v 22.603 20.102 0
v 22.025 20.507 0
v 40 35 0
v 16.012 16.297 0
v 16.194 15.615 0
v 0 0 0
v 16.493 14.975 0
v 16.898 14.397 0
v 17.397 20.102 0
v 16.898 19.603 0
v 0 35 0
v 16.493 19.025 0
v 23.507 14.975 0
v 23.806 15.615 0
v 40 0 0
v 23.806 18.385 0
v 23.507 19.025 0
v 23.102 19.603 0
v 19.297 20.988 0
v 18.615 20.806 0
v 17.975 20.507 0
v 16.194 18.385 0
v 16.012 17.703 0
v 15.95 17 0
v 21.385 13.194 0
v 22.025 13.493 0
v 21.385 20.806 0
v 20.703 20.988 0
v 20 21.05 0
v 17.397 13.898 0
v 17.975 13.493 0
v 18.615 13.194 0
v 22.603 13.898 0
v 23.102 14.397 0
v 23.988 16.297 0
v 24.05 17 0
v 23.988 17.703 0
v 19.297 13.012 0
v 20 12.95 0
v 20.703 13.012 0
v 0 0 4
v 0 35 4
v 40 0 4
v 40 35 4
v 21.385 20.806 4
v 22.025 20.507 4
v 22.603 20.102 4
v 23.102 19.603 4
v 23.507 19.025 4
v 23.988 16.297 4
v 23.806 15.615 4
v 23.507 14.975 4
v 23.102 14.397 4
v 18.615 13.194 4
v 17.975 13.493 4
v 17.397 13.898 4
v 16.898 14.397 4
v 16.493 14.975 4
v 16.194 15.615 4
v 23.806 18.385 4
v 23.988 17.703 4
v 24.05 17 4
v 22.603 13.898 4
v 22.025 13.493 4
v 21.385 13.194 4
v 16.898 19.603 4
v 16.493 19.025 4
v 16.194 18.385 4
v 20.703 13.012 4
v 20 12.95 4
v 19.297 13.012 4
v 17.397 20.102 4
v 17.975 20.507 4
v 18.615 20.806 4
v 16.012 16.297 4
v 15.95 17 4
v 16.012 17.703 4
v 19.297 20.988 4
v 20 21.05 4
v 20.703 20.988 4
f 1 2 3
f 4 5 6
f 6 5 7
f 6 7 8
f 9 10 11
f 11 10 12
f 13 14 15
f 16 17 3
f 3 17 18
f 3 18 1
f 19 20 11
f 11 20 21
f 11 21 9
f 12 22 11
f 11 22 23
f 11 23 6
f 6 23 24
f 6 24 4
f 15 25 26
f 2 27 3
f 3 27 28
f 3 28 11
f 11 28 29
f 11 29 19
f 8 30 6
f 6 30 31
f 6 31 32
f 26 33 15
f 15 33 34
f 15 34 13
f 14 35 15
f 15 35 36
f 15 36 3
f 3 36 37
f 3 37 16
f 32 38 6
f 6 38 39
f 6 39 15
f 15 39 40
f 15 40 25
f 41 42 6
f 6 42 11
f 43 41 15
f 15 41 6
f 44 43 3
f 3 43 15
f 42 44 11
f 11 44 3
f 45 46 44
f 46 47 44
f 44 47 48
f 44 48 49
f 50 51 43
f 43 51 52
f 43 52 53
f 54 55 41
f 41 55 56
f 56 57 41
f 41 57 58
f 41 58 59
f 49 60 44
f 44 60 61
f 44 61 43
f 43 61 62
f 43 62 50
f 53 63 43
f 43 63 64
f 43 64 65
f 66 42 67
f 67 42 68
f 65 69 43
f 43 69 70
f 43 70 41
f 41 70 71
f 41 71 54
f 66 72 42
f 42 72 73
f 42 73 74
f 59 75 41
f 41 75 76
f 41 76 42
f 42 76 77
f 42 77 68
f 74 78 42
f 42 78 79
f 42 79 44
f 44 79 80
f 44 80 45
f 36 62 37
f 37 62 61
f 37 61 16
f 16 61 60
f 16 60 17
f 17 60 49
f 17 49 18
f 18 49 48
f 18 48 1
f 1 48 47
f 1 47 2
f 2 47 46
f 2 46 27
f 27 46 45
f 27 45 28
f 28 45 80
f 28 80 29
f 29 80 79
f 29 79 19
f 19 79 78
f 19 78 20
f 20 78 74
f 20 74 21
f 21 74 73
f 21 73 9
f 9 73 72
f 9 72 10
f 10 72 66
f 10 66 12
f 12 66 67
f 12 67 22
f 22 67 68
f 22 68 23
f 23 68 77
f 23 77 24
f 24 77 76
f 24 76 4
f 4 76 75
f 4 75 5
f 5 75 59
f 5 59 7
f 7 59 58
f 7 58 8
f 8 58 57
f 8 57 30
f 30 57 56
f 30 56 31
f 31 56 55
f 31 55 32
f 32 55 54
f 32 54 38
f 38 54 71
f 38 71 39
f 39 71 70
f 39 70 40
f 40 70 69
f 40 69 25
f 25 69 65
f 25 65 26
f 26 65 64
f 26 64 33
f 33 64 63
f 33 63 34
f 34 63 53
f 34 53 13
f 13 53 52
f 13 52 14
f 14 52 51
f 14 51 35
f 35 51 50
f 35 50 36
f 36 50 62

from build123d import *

# Parameters (mm, degrees)
SKETCH1_W                     = 40
SKETCH1_H                     = 35
PROFILE_DEPTH                 = 4
FASTENER_CLEARANCE_DEPTH      = 54.301031885
FASTENER_CLEARANCE_DEPTH_BACK = 54.301031885
SKETCH2_R                     = 4.05


with BuildPart() as part:
    # Sketch1 → Profile (new body)
    with BuildSketch(Plane.XY):
        with Locations((20, 17.5)):
            Rectangle(SKETCH1_W, SKETCH1_H)
    extrude(amount=PROFILE_DEPTH)

    # Sketch2 → Fastener_clearance (cut, two sides: drawn at the far end of the back side and taken through both)
    with BuildSketch(Plane.XY.offset(-FASTENER_CLEARANCE_DEPTH_BACK)):
        with Locations((20, 17)):
            Circle(SKETCH2_R)
    extrude(amount=FASTENER_CLEARANCE_DEPTH + FASTENER_CLEARANCE_DEPTH_BACK, mode=Mode.SUBTRACT)


solid = part.part
